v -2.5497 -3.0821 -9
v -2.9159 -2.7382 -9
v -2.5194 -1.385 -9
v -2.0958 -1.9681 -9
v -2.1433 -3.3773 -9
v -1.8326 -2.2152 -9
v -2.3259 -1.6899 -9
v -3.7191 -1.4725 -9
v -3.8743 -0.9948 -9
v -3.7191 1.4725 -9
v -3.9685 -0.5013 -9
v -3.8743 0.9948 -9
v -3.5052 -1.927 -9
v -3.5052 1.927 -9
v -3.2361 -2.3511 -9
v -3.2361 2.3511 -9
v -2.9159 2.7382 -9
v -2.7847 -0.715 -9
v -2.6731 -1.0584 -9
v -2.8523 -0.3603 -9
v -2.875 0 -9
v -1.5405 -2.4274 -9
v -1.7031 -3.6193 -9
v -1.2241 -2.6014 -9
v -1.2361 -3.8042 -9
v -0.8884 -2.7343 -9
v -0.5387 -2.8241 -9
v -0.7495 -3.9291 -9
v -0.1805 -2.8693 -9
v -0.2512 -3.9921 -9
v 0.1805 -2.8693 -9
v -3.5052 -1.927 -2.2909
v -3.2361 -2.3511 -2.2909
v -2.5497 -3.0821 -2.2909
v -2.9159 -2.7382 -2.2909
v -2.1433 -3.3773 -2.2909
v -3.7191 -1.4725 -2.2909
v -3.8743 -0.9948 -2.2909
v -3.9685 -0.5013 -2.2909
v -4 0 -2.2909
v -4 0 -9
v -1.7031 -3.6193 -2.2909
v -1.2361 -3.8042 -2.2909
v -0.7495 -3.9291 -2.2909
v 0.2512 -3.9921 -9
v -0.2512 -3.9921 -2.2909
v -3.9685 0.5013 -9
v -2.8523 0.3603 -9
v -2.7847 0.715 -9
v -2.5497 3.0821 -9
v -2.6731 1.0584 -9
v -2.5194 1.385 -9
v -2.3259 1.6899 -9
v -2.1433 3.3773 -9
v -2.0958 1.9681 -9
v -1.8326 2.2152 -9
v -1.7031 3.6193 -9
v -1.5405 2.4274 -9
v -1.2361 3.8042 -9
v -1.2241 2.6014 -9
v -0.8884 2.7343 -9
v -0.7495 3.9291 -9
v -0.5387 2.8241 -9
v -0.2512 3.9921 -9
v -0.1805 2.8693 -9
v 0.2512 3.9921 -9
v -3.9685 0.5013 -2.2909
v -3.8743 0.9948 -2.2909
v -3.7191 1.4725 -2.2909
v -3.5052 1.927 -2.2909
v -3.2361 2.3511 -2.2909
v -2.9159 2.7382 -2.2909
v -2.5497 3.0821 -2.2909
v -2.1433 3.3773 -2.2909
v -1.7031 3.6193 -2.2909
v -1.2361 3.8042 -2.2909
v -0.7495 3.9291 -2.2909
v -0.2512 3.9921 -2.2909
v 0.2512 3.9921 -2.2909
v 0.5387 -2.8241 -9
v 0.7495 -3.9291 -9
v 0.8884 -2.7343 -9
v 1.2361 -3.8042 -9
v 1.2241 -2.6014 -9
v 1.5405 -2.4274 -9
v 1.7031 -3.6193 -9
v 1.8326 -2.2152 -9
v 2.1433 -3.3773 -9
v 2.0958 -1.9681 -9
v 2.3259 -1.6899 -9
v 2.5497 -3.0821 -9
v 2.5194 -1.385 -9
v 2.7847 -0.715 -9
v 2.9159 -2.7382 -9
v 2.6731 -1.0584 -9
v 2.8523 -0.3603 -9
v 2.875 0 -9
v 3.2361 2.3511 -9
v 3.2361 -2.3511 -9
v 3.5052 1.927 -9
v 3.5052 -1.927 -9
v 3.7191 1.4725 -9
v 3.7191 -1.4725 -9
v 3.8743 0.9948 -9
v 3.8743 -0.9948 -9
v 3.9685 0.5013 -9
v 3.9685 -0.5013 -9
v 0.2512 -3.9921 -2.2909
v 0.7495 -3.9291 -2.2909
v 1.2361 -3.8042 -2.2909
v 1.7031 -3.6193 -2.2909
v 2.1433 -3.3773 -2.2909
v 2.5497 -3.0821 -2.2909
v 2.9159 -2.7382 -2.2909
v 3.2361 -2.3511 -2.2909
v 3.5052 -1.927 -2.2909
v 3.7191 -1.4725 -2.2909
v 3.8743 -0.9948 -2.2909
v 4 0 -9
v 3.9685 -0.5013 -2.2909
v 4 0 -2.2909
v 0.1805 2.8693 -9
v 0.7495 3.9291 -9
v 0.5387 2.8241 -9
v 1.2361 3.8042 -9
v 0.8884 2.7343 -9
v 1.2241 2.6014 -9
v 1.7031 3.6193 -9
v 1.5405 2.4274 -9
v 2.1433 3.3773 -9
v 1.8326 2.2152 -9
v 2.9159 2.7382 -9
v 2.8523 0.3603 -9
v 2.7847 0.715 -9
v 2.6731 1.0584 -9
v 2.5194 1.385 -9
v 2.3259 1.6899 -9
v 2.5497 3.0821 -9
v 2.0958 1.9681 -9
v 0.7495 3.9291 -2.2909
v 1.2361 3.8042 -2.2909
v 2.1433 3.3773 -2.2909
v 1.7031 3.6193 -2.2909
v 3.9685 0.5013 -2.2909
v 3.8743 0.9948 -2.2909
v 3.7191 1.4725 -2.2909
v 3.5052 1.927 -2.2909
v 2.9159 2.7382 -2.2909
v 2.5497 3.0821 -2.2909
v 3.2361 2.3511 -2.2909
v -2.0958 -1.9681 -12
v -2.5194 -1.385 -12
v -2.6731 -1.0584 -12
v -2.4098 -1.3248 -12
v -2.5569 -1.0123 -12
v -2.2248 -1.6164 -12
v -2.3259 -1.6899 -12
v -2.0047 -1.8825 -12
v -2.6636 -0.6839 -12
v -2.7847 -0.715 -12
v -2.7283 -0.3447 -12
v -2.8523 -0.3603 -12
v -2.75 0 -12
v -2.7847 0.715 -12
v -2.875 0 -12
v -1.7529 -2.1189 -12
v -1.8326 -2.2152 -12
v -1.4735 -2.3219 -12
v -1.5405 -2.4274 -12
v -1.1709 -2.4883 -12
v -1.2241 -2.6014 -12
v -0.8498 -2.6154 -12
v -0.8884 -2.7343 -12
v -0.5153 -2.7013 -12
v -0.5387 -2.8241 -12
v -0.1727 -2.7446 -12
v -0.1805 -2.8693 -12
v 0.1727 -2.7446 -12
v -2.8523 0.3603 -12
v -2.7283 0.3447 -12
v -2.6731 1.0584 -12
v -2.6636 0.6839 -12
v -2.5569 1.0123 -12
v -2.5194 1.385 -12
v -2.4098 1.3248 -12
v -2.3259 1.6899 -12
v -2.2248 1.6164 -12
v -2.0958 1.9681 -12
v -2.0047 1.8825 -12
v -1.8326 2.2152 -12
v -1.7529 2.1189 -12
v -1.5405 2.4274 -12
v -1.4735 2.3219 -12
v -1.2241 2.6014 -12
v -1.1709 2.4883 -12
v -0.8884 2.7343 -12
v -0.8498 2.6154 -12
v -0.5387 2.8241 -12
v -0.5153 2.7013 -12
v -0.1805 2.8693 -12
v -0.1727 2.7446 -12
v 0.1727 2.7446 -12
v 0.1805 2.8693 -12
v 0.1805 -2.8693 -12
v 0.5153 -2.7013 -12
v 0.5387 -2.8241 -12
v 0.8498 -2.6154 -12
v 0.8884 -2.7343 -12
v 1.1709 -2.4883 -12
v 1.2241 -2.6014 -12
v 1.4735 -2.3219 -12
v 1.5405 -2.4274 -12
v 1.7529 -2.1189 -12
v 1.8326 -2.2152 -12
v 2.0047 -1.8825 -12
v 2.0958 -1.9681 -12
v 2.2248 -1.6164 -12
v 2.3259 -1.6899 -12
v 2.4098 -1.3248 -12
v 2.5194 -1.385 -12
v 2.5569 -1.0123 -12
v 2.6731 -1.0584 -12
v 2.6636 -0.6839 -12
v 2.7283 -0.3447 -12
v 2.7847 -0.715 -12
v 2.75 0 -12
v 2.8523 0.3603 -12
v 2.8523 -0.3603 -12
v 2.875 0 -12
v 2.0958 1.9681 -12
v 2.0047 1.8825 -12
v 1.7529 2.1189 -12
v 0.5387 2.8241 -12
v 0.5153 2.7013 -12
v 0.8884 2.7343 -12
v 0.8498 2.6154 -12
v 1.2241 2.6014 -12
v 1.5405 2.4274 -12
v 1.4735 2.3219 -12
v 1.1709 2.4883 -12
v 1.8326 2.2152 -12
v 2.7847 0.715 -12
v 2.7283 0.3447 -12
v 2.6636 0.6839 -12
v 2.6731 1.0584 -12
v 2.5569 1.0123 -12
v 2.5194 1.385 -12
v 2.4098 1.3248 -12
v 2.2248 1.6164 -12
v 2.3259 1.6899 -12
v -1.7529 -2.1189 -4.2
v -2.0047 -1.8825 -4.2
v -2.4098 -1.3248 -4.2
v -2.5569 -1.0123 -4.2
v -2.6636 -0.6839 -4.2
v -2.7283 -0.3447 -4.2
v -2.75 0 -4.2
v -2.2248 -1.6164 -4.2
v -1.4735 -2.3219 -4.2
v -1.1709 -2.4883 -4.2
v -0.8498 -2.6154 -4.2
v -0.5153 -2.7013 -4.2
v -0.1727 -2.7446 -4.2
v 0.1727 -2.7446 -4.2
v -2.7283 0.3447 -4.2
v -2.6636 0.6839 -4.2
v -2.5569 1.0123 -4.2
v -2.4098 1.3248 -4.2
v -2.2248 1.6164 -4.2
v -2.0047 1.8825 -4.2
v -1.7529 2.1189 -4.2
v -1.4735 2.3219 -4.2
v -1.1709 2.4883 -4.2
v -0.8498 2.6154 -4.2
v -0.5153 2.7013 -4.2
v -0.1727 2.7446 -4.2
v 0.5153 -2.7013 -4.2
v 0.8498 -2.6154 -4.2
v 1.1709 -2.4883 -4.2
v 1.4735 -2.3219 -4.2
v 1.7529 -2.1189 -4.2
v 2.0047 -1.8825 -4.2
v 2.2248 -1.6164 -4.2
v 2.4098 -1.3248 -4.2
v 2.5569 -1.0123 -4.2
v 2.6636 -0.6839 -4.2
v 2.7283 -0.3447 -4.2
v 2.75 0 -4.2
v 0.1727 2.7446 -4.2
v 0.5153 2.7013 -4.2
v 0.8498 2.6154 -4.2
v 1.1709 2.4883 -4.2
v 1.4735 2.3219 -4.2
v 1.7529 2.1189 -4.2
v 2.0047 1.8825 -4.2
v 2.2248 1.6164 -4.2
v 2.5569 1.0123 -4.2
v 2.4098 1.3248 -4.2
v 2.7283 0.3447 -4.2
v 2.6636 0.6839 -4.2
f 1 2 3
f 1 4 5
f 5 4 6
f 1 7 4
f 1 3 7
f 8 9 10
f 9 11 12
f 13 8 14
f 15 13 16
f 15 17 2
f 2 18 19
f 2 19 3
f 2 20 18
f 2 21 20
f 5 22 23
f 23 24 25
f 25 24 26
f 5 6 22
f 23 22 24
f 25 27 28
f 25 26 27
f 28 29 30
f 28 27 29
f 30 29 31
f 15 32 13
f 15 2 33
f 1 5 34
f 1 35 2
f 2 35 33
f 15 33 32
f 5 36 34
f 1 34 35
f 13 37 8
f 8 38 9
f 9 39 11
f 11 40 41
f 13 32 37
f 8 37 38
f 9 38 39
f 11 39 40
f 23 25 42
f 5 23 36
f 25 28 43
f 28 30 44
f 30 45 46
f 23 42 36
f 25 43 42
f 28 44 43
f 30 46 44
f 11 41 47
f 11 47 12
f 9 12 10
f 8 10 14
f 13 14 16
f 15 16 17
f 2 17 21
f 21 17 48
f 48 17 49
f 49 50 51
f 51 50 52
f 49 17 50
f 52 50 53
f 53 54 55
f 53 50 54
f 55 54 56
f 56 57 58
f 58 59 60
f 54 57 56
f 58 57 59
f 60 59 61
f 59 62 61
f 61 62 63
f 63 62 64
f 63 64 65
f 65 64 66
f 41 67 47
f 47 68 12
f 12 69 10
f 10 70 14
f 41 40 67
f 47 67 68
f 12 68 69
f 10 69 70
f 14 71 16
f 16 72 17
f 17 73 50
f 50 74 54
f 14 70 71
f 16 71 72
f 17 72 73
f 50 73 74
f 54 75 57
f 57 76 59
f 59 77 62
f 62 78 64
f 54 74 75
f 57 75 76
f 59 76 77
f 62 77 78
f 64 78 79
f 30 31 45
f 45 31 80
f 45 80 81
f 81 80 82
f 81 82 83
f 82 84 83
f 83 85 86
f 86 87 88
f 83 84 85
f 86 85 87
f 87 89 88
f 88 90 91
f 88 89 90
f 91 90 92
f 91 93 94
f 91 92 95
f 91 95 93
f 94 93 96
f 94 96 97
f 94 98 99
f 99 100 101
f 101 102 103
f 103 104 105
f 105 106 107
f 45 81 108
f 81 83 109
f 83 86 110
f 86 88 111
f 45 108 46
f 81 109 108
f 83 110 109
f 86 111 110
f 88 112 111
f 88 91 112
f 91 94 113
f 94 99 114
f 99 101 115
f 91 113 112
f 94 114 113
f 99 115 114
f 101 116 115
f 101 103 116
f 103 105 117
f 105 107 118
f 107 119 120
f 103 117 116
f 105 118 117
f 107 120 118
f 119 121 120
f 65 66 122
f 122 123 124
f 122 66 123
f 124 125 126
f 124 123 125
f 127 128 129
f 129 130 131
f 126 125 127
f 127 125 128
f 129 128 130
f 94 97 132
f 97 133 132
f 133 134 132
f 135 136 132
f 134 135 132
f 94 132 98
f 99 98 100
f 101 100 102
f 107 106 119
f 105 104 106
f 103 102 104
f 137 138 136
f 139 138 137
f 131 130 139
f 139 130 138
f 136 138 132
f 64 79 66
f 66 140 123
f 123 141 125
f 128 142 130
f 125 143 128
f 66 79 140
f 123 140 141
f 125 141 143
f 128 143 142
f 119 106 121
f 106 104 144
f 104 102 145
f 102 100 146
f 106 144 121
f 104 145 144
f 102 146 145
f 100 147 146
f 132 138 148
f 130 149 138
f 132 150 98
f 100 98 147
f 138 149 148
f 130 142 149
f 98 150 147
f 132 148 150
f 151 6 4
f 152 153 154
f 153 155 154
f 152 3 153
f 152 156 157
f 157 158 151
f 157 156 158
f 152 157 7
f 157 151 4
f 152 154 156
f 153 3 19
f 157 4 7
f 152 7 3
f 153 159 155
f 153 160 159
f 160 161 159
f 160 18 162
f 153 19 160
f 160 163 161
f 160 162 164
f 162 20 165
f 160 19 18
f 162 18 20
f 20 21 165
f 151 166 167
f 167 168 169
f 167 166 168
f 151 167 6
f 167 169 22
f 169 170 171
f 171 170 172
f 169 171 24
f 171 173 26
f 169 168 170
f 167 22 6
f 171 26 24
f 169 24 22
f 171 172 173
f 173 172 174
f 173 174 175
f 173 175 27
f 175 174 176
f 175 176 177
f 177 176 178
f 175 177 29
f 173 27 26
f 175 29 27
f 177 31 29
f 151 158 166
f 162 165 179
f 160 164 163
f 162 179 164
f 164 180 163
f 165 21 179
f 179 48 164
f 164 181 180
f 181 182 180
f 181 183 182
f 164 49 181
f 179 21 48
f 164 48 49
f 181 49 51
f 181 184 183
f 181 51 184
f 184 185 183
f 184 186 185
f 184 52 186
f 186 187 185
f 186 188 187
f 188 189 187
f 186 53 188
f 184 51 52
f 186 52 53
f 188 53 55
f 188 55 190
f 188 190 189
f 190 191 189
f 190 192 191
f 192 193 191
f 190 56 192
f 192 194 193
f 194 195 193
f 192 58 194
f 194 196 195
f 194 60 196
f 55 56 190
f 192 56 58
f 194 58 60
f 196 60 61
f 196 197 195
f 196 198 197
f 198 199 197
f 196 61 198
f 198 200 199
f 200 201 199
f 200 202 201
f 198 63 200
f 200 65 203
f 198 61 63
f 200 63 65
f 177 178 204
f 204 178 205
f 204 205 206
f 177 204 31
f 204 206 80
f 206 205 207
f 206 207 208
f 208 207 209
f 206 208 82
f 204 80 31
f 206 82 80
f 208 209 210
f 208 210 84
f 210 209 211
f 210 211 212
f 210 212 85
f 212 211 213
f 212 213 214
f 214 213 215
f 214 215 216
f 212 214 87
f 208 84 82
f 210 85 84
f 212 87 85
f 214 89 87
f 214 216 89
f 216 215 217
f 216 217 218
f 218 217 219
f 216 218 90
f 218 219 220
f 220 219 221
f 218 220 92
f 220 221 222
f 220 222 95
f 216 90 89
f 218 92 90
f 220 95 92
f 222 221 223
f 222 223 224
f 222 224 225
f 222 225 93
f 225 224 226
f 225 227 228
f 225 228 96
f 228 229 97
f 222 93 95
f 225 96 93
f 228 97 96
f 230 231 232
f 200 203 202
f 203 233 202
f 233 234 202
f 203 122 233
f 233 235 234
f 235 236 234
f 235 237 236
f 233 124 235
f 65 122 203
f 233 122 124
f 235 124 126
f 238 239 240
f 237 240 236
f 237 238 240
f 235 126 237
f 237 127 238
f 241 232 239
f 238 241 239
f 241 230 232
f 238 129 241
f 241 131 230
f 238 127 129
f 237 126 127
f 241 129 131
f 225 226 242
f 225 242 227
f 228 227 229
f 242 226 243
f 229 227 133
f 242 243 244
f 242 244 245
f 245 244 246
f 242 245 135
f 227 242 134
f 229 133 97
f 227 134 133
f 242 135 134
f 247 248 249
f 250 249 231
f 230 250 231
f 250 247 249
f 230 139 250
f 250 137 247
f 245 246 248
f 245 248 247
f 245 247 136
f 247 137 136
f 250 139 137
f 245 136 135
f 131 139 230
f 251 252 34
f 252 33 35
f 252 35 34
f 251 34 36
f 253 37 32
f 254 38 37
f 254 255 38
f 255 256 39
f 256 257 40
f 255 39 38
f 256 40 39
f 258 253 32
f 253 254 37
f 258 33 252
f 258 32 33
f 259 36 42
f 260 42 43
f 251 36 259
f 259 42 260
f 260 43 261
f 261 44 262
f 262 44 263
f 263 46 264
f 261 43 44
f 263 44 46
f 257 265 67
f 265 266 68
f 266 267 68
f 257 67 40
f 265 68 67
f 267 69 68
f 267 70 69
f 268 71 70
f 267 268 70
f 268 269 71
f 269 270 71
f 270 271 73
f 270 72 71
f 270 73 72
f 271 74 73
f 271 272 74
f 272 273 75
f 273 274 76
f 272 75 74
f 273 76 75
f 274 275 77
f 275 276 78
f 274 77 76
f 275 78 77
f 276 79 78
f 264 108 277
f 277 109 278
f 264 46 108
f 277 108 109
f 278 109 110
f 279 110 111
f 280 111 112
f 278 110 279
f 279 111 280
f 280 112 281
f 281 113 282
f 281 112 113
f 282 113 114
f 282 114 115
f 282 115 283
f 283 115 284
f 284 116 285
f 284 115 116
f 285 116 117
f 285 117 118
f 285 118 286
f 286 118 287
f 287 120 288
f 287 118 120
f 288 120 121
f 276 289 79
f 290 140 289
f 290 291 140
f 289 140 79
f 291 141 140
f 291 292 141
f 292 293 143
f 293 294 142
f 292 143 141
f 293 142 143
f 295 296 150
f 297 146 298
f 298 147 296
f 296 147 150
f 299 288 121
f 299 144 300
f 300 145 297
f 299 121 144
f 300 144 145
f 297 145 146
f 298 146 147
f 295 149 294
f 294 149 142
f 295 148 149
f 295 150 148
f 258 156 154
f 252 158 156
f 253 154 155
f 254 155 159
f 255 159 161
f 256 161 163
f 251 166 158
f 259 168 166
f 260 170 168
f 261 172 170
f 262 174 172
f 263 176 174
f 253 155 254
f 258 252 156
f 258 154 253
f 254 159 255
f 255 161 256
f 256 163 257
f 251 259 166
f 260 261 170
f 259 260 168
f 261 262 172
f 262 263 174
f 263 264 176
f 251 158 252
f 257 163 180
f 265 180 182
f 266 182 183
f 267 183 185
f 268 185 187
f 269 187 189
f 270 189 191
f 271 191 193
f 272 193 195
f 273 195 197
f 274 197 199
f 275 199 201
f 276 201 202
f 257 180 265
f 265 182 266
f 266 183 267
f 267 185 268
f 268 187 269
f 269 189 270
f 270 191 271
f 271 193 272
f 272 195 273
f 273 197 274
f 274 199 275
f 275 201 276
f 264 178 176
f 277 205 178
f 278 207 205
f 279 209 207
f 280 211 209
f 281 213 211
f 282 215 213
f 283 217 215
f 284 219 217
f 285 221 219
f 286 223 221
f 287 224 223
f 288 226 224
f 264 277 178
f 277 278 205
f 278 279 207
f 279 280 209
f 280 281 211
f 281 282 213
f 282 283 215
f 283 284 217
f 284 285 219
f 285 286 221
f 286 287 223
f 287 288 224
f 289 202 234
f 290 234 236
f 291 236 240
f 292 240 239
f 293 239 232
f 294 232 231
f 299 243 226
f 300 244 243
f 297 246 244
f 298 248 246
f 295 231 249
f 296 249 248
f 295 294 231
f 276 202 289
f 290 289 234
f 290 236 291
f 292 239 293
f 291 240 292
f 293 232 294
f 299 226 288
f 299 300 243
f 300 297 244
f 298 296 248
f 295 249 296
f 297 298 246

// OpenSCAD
$fn = 50;

difference() {
	union() {
		translate(v = [0, 0, -9.0]) {
			cylinder(h = 9, r = 4.0);
		}
		#translate(v = [0, 0, -12.0]) {
			cylinder(h = 12, r = 2.875);
		}
	}
	union() {
		translate(v = [0, 0, 0]) {
			rotate(a = [0, 0, 0]) {
				difference() {
					union() {
						translate(v = [0, 0, -12.0]) {
							cylinder(h = 12, r = 2.25);
						}
						translate(v = [0, 0, -4.2]) {
							cylinder(h = 4.2, r1 = 2.75, r2 = 5.5);
						}
						translate(v = [0, 0, -12.0]) {
							cylinder(h = 12, r = 2.75);
						}
						translate(v = [0, 0, -12.0]) {
							cylinder(h = 12, r = 2.25);
						}
					}
					union();
				}
			}
		}
	}
}
